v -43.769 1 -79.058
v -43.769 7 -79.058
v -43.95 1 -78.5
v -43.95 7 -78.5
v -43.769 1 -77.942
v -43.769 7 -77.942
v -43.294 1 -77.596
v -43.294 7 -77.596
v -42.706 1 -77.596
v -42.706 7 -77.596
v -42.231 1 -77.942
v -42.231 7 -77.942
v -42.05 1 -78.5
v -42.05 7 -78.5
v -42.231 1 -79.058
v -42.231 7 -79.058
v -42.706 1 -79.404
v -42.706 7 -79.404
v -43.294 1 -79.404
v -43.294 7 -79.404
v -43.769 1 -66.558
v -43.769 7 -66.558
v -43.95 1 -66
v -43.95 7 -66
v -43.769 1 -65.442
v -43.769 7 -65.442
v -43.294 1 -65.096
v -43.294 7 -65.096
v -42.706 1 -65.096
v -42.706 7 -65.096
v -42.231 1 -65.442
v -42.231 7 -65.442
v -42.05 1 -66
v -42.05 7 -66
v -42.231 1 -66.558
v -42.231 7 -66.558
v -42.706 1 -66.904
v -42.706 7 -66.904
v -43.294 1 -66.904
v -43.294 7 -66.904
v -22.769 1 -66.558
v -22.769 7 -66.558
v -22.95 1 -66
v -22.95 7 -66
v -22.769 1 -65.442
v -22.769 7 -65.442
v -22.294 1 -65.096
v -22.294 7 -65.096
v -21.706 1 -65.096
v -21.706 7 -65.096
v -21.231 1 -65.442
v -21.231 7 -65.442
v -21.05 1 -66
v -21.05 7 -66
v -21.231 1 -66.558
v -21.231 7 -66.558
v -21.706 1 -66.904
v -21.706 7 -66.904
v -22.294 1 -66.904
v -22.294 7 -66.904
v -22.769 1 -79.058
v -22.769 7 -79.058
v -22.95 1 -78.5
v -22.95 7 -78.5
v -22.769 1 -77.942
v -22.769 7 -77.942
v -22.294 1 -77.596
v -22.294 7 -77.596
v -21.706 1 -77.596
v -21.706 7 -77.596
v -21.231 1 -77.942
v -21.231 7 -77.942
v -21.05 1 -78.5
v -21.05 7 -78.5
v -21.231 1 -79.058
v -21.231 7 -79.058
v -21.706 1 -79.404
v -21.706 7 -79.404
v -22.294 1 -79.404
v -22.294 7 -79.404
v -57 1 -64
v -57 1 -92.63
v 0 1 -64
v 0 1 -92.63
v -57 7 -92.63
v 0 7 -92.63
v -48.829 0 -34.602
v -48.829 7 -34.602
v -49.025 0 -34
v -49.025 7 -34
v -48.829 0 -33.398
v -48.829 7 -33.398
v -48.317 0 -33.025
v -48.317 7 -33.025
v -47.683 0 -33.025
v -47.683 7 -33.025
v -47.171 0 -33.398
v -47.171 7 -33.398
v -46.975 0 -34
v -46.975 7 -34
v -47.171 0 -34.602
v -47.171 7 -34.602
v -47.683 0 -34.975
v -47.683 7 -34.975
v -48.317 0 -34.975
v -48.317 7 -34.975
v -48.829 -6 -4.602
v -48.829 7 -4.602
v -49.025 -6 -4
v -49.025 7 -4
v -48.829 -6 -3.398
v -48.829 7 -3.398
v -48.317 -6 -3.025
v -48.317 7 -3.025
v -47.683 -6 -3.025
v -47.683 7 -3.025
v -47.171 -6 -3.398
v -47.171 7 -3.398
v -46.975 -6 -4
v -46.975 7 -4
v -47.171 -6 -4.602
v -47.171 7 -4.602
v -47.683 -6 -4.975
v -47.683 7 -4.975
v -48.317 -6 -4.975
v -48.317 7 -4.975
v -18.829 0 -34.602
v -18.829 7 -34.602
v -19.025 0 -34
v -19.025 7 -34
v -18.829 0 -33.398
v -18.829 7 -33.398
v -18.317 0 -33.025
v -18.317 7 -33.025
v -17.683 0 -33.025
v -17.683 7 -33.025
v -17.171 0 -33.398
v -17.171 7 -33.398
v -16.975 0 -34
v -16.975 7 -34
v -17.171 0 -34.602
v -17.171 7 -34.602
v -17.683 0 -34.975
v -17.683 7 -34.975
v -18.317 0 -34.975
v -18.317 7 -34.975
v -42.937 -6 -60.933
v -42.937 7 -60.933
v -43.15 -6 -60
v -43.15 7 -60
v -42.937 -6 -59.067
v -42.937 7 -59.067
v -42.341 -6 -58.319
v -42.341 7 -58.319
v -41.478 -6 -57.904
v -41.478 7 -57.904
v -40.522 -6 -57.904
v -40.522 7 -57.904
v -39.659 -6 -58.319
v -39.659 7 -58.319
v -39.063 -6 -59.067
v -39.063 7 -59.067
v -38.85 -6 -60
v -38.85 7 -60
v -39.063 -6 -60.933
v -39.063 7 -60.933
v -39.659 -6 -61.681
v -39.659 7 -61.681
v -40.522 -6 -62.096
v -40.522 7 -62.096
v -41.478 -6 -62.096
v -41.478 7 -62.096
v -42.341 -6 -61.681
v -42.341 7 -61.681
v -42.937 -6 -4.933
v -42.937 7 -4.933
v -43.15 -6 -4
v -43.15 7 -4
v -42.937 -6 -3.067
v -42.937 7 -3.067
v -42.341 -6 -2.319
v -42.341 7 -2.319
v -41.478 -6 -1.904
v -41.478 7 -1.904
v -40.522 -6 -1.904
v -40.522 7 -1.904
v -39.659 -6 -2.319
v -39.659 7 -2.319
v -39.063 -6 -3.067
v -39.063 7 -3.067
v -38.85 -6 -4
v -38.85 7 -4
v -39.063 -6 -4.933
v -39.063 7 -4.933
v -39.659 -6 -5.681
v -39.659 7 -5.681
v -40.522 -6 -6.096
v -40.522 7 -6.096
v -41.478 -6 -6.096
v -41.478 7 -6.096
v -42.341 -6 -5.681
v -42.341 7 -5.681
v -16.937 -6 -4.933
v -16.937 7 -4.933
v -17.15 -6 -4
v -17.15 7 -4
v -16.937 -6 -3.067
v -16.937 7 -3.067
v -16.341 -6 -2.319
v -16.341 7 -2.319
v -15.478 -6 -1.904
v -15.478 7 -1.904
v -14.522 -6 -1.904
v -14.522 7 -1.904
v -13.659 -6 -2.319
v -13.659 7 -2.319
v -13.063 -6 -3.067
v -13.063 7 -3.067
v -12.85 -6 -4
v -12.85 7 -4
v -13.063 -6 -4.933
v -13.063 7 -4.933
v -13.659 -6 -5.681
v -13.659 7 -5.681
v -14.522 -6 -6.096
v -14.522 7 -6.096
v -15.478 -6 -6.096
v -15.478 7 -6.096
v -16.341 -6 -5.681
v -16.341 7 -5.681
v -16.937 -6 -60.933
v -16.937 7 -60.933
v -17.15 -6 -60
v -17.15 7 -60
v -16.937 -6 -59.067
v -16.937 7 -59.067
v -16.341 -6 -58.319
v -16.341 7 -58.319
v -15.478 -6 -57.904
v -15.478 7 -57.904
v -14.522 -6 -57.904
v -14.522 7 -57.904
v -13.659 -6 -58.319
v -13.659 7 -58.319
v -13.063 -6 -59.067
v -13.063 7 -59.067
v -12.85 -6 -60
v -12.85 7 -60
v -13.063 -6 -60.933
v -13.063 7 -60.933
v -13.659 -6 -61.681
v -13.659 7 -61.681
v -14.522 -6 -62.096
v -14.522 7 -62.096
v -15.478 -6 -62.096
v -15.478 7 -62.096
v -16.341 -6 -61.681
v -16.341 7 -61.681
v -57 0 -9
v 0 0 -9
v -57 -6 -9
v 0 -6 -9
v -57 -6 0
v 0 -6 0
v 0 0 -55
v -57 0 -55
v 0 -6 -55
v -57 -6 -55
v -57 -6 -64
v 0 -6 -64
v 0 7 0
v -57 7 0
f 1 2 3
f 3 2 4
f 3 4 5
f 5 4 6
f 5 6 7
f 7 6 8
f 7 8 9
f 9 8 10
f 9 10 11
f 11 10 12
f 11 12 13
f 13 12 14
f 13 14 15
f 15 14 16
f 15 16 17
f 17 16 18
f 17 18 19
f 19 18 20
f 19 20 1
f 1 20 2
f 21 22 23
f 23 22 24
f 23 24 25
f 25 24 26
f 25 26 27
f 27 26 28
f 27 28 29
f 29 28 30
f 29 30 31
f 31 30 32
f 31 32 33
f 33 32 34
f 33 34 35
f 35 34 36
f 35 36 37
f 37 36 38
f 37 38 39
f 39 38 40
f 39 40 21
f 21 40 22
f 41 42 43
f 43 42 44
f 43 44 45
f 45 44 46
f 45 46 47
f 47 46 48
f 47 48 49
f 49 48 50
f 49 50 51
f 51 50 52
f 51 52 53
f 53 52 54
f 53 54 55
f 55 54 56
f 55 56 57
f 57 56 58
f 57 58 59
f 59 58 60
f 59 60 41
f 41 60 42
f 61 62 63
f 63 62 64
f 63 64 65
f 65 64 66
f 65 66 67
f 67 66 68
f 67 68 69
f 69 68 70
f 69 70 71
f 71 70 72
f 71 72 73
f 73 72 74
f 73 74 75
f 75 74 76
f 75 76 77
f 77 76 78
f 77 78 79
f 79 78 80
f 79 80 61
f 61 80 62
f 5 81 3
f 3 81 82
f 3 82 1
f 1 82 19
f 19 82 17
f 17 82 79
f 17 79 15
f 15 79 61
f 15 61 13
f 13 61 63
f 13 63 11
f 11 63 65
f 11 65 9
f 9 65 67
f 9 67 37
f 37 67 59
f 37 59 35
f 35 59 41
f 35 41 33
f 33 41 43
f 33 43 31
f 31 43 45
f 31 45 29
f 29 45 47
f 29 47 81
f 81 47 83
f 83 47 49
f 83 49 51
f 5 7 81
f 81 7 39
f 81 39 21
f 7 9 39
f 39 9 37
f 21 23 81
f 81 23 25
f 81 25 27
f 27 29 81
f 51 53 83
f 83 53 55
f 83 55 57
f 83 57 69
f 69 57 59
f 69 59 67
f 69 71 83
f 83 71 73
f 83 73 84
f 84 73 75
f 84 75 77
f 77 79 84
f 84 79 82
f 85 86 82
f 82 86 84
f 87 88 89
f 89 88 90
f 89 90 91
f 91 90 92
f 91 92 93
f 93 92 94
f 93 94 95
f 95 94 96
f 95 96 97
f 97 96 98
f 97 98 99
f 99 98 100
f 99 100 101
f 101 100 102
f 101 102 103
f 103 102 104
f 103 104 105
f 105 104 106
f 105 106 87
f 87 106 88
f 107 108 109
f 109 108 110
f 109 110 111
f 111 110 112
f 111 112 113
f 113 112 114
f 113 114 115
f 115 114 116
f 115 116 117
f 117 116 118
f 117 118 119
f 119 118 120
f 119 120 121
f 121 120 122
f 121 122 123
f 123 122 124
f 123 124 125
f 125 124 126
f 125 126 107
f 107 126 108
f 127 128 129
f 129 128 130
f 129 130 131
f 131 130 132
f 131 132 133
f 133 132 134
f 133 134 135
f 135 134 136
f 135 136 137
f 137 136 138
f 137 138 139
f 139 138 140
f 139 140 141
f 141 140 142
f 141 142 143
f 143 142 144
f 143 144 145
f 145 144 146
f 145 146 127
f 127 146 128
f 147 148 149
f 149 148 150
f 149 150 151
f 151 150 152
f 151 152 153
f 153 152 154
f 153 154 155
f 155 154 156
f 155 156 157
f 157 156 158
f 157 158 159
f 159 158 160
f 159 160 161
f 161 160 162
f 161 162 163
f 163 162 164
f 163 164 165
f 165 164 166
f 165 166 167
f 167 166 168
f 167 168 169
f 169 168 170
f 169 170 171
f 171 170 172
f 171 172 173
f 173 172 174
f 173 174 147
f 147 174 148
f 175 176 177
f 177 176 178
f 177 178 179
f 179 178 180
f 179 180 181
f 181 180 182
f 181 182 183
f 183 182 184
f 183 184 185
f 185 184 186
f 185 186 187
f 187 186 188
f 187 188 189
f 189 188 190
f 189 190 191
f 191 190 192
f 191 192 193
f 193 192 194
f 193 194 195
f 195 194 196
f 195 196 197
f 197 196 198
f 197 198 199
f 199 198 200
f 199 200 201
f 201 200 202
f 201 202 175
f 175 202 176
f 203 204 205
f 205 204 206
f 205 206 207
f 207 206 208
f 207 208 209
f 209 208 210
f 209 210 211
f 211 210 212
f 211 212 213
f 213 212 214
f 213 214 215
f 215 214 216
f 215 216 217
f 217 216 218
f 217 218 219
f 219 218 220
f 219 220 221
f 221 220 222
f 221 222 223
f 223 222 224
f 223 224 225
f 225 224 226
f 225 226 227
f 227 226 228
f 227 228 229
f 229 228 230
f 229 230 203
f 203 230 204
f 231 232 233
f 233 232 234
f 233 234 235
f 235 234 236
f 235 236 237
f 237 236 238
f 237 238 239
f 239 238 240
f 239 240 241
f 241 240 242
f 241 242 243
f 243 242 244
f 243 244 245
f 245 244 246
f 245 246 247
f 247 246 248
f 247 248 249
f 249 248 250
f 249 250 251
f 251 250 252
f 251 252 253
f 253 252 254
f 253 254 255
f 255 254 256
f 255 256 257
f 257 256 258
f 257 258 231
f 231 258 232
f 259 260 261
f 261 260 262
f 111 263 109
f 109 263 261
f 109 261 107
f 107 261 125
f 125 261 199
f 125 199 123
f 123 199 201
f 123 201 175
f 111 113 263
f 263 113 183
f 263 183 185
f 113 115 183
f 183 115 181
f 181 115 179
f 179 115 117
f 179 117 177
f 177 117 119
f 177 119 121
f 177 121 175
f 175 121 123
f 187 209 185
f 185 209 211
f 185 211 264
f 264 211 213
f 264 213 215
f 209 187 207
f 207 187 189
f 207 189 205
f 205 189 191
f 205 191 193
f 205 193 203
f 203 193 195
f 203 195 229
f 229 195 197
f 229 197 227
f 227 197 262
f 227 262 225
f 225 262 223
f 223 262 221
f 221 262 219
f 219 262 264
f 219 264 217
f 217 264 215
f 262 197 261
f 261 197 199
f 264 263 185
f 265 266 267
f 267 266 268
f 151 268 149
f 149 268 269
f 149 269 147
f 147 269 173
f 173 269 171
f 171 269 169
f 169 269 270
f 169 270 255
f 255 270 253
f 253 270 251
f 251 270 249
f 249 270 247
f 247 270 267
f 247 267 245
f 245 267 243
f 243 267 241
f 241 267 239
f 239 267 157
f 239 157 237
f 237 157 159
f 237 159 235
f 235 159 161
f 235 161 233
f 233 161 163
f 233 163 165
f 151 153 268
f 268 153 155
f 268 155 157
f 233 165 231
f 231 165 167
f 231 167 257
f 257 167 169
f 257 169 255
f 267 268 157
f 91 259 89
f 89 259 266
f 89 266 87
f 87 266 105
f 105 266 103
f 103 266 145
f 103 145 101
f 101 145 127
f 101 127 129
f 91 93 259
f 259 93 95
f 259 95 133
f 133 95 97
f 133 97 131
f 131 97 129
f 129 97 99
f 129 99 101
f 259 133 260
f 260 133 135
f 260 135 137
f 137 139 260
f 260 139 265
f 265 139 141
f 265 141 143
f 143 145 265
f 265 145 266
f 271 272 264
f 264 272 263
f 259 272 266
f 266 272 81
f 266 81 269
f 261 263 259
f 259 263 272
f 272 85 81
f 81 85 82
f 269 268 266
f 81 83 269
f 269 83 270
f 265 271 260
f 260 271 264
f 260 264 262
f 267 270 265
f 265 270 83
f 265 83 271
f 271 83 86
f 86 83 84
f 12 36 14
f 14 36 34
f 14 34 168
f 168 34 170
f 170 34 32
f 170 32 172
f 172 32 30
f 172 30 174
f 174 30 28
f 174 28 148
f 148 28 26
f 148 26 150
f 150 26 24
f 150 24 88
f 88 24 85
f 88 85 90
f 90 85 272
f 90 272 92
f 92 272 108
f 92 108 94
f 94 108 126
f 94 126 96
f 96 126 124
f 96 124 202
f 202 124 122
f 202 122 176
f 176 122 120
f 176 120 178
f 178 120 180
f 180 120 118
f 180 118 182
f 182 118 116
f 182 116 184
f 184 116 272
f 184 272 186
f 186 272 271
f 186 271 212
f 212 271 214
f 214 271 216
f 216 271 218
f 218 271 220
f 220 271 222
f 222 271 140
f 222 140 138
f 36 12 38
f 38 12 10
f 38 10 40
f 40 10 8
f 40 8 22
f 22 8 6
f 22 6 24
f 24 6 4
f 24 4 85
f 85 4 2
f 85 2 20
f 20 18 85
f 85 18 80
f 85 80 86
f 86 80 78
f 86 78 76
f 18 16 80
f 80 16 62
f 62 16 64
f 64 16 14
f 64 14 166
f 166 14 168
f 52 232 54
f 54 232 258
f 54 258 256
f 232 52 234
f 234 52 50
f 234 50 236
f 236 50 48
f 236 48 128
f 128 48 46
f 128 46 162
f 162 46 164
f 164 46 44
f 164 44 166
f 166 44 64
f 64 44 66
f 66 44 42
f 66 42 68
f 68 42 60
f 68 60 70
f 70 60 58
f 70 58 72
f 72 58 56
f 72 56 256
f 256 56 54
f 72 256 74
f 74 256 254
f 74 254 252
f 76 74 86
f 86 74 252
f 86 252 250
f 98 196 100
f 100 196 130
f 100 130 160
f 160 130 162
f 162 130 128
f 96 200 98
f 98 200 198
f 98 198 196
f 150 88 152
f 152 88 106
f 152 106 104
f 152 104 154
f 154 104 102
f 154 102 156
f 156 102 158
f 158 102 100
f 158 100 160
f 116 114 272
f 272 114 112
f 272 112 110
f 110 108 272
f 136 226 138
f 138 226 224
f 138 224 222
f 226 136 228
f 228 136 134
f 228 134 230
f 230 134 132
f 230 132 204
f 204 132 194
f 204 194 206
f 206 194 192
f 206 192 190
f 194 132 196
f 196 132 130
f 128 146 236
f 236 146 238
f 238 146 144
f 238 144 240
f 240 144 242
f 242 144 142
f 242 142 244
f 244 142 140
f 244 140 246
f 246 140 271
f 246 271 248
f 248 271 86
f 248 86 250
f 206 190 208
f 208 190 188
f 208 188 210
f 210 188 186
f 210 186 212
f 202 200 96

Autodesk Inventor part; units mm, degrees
ref_plane "YZ Plane" through (0, 0, 0) normal (1, 0, 0) x (0, 1, 0)
ref_plane "XZ Plane" through (0, 0, 0) normal (0, 1, 0) x (-1, 0, 0)
ref_plane "XY Plane" through (0, 0, 0) normal (0, 0, 1) x (1, 0, 0)
sketch "Sketch1" plane through (0, 0, 0) normal (0, 1, 0) x (-1, 0, 0)
  line L0 (0, 0) -> (57, 0)
  line L1 (57, 0) -> (57, -64)
  line L2 (57, -64) -> (0, -64)
  line L3 (0, -64) -> (0, 0)
  dimension "d0" = 57
  dimension "d1" = 64
extrude "Extrusion1" add sketch "Sketch1" along normal blind 7
sketch "Sketch2" plane through (0, 7, 0) normal (0, 1, 0) x (1, 0, 0)
  line L0 (-57, 64) -> (-57, 0) projected
  line L1 (-57, 0) -> (0, 0) projected
  line L2 (0, 64) -> (-57, 64) projected
  point P0 (-41, 4)
  point P1 (-15, 4)
  point P2 (-41, 60)
  point P3 (-15, 60)
  dimension "d4" = 26
  dimension "d5" = 16
  dimension "d6" = 4
  dimension "d7" = 4
  dimension "d8" = 4
  dimension "d9" = 4
  dimension "d10" = 26
  dimension "d11" = 16
sketch "Sketch3" plane through (0, 0, 0) normal (0, -1, 0) x (1, 0, 0)
  line L0 (0, -64) -> (-57, -64) projected
  line L1 (0, 0) -> (0, -64) projected
  line L2 (-57, -64) -> (0, -64)
  line L3 (0, -64) -> (0, -55)
  line L4 (0, -55) -> (-57, -55)
  line L5 (-57, -55) -> (-57, -64)
  line L6 (-57, -64) -> (-57, 0) projected
  line L7 (-57, 0) -> (0, 0)
  line L8 (0, 0) -> (0, -9)
  line L9 (0, -9) -> (-57, -9)
  line L10 (-57, -9) -> (-57, 0)
  dimension "d12" = 9
  dimension "d13" = 9
extrude "Extrusion2" add sketch "Sketch3" along normal blind 6 contours L0 L5 L4 L1 | L9 L6 L7 L1
hole "Hole1" at (-41, 7, -4) at (-15, 7, -4) at (-41, 7, -60) at (-15, 7, -60) direction (0, -1, 0) diameter 4.3 end through all
sketch "Sketch4" plane through (0, 7, 0) normal (0, 1, 0) x (1, 0, 0)
  line L0 (-57, 0) -> (0, 0) projected
  line L1 (-57, 64) -> (-57, 0) projected
  line L2 (0, 0) -> (0, 64) projected
  line L3 (-63.6235, 34) -> (1.4941, 34) construction
  line L4 (-48, -4.864) -> (-48, 68.9429) construction
  point P0 (-48, 4)
  point P1 (-48, 34)
  point P2 (-18, 34)
  dimension "d28" = 4
  dimension "d30" = 9
  dimension "d41" = 30
  dimension "d42" = 30
hole "Hole2" at (-48, 7, -4) at (-48, 7, -34) at (-18, 7, -34) direction (0, -1, 0) diameter 2.05 end through all
sketch "Sketch5" plane through (0, 7, -64) normal (0, 0, -1) x (-1, 0, 0)
  line L0 (57, -13) -> (57, 0) projected
  line L1 (0, 0) -> (57, 0)
  line L2 (57, 0) -> (57, -6)
  line L3 (57, -6) -> (0, -6)
  line L4 (0, -6) -> (0, 0)
  point P0 (0, -7)
  dimension "d43" = 6
extrude "Extrusion3" add sketch "Sketch5" along normal blind 28.63
sketch "Sketch6" plane through (0, 7, 0) normal (0, 1, 0) x (1, 0, 0)
  line L0 (-43, 25.0666) -> (-43, 99.5095) construction
  line L1 (-57, 92.63) -> (0, 92.63) projected
  line L2 (-22, 34.9149) -> (-22, 94.8811) construction
  line L3 (-39.656, 66) -> (-5.0422, 66) construction
  line L4 (-57, 0) -> (0, 0) projected
  line L5 (0, 0) -> (0, 92.63) projected
  line L6 (-49.1509, 78.5) -> (-3.6175, 78.5) construction
  point P0 (-43, 66)
  point P1 (-22, 66)
  point P2 (-43, 78.5)
  point P3 (-22, 78.5)
  dimension "d46" = 21
  dimension "d47" = 66
  dimension "d48" = 22
  dimension "d49" = 12.5
hole "Hole3" at (-43, 7, -66) at (-22, 7, -66) at (-43, 7, -78.5) at (-22, 7, -78.5) direction (0, -1, 0) diameter 1.9 end through all
properties part number "P132SupportCamera"
